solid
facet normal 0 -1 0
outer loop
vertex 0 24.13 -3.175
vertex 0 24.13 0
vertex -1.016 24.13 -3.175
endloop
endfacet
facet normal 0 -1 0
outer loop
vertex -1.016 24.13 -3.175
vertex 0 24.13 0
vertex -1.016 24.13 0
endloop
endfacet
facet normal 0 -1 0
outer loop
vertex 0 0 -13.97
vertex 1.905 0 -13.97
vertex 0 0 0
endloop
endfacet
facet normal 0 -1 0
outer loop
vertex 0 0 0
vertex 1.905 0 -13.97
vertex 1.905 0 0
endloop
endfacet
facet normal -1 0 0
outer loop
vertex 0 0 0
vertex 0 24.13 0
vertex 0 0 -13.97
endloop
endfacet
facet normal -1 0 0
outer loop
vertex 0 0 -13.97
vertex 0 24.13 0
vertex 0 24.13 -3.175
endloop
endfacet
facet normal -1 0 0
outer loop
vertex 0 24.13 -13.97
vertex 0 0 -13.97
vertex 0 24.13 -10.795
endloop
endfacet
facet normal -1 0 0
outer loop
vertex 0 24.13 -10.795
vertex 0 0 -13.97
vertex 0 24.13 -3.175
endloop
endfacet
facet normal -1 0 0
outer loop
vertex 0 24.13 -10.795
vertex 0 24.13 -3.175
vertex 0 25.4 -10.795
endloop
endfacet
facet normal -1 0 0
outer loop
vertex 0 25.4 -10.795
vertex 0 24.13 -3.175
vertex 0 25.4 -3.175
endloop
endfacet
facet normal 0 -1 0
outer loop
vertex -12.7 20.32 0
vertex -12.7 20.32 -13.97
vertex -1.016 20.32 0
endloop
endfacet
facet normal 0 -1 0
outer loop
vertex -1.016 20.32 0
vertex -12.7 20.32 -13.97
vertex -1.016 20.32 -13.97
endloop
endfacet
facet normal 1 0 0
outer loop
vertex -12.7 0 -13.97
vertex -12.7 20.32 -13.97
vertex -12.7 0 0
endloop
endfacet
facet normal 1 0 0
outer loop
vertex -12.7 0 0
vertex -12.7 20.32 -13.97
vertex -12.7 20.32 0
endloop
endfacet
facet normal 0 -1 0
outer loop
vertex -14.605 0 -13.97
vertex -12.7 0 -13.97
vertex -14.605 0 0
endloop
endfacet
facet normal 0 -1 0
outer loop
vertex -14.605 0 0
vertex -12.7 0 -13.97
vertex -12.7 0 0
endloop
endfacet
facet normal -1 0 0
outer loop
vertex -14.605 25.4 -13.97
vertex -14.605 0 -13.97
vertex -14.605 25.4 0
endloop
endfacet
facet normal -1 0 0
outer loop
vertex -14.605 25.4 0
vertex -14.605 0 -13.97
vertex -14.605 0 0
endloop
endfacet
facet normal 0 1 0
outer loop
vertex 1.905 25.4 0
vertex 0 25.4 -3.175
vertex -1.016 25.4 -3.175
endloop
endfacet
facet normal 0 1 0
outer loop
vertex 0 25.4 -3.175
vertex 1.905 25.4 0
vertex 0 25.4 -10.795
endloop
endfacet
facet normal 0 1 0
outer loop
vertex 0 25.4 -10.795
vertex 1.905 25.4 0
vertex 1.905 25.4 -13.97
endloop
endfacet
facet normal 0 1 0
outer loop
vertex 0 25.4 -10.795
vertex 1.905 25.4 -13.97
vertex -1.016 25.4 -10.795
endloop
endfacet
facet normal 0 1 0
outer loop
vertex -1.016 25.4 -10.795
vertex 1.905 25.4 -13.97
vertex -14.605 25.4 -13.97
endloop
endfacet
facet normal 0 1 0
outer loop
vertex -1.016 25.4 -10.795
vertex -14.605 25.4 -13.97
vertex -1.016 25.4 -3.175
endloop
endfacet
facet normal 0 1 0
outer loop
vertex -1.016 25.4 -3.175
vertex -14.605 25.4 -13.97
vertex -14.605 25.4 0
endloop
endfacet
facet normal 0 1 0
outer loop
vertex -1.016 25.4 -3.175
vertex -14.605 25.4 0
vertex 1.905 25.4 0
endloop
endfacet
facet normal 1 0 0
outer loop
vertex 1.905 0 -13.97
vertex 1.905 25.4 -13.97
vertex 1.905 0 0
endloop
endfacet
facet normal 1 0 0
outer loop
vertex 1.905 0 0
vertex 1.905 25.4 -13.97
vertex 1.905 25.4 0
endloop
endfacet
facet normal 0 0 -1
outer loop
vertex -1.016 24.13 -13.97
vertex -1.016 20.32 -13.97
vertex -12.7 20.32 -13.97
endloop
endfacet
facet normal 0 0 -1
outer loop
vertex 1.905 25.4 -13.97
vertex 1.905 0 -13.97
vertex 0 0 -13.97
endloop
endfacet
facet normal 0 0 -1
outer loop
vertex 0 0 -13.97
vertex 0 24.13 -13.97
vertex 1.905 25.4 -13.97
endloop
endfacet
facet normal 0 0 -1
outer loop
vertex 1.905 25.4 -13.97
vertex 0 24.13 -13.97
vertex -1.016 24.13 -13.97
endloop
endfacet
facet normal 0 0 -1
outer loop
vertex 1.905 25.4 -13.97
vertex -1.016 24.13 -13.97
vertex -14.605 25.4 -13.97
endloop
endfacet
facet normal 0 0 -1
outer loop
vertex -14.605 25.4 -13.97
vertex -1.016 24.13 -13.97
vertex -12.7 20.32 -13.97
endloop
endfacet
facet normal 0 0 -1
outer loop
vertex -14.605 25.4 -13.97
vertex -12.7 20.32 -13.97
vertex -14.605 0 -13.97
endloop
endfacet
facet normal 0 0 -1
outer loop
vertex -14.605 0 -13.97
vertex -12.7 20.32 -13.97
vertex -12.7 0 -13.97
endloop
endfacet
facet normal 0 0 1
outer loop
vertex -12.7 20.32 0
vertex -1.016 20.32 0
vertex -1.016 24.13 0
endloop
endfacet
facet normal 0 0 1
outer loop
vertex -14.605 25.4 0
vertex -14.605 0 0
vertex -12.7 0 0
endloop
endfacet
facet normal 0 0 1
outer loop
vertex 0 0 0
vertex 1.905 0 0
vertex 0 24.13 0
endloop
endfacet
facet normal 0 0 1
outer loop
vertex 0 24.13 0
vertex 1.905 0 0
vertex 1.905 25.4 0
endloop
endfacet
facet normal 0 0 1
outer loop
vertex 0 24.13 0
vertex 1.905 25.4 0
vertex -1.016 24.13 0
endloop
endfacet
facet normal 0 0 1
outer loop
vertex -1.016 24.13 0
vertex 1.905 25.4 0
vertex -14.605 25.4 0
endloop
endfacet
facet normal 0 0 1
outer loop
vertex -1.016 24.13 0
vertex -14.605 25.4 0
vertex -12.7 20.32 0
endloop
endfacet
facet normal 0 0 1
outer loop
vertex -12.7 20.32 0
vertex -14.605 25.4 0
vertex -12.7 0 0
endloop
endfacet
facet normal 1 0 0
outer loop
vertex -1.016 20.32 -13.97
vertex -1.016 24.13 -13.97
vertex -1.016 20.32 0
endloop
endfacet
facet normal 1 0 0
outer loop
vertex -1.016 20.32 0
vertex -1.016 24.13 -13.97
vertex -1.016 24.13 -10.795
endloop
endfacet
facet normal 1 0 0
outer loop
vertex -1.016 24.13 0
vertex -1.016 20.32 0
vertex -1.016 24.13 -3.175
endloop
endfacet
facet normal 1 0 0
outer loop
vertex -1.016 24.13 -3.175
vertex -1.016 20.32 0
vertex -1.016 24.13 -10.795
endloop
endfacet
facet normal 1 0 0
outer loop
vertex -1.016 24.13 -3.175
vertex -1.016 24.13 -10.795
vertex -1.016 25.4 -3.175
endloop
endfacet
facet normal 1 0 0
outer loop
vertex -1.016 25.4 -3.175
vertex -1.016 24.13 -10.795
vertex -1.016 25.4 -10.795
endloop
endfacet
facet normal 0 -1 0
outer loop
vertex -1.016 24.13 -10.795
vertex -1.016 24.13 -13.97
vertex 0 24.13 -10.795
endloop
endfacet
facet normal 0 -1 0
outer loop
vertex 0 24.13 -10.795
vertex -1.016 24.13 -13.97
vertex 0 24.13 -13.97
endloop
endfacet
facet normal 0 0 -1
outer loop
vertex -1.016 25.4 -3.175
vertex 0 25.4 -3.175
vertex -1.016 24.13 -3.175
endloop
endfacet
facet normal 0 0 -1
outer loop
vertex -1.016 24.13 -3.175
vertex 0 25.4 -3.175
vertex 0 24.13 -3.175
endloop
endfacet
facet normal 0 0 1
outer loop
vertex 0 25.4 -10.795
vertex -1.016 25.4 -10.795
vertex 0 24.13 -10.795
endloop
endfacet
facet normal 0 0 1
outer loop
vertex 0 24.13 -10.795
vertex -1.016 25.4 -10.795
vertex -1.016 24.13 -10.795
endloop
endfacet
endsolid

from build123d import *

# Parameters (mm, degrees)
BOSS_EXTRUDE1_DEPTH = 13.97
SKETCH3_W           = 1.016
SKETCH3_H           = 3.81
CUT_EXTRUDE1_DEPTH  = 14.97
CUT_EXTRUDE2_DEPTH  = 2.27


with BuildPart() as part:
    # Sketch1 → Boss-Extrude1 (new body)
    with BuildSketch(Plane.XY):
        Polygon((0, 0), (0, 20.32), (-12.7, 20.32), (-12.7, 0), (-14.605, 0), (-14.605, 19.05), (-14.605, 25.4), (1.905, 25.4), (1.905, 19.05), (1.905, 0), align=None)
    extrude(amount=-BOSS_EXTRUDE1_DEPTH)

    # Sketch3 → Cut-Extrude1 (cut, through all)
    with BuildSketch(Plane.XY):
        with Locations((-0.508, 22.225)):
            Rectangle(SKETCH3_W, SKETCH3_H)
    extrude(amount=-CUT_EXTRUDE1_DEPTH, mode=Mode.SUBTRACT)

    # Sketch4 → Cut-Extrude2 (cut, through all)
    with BuildSketch(Plane.XZ.offset(-24.13)):
        Polygon((-1.016, -6.985), (-1.016, -3.175), (0, -3.175), (0, -10.795), (-1.016, -10.795), align=None)
    extrude(amount=-CUT_EXTRUDE2_DEPTH, mode=Mode.SUBTRACT)


solid = part.part
